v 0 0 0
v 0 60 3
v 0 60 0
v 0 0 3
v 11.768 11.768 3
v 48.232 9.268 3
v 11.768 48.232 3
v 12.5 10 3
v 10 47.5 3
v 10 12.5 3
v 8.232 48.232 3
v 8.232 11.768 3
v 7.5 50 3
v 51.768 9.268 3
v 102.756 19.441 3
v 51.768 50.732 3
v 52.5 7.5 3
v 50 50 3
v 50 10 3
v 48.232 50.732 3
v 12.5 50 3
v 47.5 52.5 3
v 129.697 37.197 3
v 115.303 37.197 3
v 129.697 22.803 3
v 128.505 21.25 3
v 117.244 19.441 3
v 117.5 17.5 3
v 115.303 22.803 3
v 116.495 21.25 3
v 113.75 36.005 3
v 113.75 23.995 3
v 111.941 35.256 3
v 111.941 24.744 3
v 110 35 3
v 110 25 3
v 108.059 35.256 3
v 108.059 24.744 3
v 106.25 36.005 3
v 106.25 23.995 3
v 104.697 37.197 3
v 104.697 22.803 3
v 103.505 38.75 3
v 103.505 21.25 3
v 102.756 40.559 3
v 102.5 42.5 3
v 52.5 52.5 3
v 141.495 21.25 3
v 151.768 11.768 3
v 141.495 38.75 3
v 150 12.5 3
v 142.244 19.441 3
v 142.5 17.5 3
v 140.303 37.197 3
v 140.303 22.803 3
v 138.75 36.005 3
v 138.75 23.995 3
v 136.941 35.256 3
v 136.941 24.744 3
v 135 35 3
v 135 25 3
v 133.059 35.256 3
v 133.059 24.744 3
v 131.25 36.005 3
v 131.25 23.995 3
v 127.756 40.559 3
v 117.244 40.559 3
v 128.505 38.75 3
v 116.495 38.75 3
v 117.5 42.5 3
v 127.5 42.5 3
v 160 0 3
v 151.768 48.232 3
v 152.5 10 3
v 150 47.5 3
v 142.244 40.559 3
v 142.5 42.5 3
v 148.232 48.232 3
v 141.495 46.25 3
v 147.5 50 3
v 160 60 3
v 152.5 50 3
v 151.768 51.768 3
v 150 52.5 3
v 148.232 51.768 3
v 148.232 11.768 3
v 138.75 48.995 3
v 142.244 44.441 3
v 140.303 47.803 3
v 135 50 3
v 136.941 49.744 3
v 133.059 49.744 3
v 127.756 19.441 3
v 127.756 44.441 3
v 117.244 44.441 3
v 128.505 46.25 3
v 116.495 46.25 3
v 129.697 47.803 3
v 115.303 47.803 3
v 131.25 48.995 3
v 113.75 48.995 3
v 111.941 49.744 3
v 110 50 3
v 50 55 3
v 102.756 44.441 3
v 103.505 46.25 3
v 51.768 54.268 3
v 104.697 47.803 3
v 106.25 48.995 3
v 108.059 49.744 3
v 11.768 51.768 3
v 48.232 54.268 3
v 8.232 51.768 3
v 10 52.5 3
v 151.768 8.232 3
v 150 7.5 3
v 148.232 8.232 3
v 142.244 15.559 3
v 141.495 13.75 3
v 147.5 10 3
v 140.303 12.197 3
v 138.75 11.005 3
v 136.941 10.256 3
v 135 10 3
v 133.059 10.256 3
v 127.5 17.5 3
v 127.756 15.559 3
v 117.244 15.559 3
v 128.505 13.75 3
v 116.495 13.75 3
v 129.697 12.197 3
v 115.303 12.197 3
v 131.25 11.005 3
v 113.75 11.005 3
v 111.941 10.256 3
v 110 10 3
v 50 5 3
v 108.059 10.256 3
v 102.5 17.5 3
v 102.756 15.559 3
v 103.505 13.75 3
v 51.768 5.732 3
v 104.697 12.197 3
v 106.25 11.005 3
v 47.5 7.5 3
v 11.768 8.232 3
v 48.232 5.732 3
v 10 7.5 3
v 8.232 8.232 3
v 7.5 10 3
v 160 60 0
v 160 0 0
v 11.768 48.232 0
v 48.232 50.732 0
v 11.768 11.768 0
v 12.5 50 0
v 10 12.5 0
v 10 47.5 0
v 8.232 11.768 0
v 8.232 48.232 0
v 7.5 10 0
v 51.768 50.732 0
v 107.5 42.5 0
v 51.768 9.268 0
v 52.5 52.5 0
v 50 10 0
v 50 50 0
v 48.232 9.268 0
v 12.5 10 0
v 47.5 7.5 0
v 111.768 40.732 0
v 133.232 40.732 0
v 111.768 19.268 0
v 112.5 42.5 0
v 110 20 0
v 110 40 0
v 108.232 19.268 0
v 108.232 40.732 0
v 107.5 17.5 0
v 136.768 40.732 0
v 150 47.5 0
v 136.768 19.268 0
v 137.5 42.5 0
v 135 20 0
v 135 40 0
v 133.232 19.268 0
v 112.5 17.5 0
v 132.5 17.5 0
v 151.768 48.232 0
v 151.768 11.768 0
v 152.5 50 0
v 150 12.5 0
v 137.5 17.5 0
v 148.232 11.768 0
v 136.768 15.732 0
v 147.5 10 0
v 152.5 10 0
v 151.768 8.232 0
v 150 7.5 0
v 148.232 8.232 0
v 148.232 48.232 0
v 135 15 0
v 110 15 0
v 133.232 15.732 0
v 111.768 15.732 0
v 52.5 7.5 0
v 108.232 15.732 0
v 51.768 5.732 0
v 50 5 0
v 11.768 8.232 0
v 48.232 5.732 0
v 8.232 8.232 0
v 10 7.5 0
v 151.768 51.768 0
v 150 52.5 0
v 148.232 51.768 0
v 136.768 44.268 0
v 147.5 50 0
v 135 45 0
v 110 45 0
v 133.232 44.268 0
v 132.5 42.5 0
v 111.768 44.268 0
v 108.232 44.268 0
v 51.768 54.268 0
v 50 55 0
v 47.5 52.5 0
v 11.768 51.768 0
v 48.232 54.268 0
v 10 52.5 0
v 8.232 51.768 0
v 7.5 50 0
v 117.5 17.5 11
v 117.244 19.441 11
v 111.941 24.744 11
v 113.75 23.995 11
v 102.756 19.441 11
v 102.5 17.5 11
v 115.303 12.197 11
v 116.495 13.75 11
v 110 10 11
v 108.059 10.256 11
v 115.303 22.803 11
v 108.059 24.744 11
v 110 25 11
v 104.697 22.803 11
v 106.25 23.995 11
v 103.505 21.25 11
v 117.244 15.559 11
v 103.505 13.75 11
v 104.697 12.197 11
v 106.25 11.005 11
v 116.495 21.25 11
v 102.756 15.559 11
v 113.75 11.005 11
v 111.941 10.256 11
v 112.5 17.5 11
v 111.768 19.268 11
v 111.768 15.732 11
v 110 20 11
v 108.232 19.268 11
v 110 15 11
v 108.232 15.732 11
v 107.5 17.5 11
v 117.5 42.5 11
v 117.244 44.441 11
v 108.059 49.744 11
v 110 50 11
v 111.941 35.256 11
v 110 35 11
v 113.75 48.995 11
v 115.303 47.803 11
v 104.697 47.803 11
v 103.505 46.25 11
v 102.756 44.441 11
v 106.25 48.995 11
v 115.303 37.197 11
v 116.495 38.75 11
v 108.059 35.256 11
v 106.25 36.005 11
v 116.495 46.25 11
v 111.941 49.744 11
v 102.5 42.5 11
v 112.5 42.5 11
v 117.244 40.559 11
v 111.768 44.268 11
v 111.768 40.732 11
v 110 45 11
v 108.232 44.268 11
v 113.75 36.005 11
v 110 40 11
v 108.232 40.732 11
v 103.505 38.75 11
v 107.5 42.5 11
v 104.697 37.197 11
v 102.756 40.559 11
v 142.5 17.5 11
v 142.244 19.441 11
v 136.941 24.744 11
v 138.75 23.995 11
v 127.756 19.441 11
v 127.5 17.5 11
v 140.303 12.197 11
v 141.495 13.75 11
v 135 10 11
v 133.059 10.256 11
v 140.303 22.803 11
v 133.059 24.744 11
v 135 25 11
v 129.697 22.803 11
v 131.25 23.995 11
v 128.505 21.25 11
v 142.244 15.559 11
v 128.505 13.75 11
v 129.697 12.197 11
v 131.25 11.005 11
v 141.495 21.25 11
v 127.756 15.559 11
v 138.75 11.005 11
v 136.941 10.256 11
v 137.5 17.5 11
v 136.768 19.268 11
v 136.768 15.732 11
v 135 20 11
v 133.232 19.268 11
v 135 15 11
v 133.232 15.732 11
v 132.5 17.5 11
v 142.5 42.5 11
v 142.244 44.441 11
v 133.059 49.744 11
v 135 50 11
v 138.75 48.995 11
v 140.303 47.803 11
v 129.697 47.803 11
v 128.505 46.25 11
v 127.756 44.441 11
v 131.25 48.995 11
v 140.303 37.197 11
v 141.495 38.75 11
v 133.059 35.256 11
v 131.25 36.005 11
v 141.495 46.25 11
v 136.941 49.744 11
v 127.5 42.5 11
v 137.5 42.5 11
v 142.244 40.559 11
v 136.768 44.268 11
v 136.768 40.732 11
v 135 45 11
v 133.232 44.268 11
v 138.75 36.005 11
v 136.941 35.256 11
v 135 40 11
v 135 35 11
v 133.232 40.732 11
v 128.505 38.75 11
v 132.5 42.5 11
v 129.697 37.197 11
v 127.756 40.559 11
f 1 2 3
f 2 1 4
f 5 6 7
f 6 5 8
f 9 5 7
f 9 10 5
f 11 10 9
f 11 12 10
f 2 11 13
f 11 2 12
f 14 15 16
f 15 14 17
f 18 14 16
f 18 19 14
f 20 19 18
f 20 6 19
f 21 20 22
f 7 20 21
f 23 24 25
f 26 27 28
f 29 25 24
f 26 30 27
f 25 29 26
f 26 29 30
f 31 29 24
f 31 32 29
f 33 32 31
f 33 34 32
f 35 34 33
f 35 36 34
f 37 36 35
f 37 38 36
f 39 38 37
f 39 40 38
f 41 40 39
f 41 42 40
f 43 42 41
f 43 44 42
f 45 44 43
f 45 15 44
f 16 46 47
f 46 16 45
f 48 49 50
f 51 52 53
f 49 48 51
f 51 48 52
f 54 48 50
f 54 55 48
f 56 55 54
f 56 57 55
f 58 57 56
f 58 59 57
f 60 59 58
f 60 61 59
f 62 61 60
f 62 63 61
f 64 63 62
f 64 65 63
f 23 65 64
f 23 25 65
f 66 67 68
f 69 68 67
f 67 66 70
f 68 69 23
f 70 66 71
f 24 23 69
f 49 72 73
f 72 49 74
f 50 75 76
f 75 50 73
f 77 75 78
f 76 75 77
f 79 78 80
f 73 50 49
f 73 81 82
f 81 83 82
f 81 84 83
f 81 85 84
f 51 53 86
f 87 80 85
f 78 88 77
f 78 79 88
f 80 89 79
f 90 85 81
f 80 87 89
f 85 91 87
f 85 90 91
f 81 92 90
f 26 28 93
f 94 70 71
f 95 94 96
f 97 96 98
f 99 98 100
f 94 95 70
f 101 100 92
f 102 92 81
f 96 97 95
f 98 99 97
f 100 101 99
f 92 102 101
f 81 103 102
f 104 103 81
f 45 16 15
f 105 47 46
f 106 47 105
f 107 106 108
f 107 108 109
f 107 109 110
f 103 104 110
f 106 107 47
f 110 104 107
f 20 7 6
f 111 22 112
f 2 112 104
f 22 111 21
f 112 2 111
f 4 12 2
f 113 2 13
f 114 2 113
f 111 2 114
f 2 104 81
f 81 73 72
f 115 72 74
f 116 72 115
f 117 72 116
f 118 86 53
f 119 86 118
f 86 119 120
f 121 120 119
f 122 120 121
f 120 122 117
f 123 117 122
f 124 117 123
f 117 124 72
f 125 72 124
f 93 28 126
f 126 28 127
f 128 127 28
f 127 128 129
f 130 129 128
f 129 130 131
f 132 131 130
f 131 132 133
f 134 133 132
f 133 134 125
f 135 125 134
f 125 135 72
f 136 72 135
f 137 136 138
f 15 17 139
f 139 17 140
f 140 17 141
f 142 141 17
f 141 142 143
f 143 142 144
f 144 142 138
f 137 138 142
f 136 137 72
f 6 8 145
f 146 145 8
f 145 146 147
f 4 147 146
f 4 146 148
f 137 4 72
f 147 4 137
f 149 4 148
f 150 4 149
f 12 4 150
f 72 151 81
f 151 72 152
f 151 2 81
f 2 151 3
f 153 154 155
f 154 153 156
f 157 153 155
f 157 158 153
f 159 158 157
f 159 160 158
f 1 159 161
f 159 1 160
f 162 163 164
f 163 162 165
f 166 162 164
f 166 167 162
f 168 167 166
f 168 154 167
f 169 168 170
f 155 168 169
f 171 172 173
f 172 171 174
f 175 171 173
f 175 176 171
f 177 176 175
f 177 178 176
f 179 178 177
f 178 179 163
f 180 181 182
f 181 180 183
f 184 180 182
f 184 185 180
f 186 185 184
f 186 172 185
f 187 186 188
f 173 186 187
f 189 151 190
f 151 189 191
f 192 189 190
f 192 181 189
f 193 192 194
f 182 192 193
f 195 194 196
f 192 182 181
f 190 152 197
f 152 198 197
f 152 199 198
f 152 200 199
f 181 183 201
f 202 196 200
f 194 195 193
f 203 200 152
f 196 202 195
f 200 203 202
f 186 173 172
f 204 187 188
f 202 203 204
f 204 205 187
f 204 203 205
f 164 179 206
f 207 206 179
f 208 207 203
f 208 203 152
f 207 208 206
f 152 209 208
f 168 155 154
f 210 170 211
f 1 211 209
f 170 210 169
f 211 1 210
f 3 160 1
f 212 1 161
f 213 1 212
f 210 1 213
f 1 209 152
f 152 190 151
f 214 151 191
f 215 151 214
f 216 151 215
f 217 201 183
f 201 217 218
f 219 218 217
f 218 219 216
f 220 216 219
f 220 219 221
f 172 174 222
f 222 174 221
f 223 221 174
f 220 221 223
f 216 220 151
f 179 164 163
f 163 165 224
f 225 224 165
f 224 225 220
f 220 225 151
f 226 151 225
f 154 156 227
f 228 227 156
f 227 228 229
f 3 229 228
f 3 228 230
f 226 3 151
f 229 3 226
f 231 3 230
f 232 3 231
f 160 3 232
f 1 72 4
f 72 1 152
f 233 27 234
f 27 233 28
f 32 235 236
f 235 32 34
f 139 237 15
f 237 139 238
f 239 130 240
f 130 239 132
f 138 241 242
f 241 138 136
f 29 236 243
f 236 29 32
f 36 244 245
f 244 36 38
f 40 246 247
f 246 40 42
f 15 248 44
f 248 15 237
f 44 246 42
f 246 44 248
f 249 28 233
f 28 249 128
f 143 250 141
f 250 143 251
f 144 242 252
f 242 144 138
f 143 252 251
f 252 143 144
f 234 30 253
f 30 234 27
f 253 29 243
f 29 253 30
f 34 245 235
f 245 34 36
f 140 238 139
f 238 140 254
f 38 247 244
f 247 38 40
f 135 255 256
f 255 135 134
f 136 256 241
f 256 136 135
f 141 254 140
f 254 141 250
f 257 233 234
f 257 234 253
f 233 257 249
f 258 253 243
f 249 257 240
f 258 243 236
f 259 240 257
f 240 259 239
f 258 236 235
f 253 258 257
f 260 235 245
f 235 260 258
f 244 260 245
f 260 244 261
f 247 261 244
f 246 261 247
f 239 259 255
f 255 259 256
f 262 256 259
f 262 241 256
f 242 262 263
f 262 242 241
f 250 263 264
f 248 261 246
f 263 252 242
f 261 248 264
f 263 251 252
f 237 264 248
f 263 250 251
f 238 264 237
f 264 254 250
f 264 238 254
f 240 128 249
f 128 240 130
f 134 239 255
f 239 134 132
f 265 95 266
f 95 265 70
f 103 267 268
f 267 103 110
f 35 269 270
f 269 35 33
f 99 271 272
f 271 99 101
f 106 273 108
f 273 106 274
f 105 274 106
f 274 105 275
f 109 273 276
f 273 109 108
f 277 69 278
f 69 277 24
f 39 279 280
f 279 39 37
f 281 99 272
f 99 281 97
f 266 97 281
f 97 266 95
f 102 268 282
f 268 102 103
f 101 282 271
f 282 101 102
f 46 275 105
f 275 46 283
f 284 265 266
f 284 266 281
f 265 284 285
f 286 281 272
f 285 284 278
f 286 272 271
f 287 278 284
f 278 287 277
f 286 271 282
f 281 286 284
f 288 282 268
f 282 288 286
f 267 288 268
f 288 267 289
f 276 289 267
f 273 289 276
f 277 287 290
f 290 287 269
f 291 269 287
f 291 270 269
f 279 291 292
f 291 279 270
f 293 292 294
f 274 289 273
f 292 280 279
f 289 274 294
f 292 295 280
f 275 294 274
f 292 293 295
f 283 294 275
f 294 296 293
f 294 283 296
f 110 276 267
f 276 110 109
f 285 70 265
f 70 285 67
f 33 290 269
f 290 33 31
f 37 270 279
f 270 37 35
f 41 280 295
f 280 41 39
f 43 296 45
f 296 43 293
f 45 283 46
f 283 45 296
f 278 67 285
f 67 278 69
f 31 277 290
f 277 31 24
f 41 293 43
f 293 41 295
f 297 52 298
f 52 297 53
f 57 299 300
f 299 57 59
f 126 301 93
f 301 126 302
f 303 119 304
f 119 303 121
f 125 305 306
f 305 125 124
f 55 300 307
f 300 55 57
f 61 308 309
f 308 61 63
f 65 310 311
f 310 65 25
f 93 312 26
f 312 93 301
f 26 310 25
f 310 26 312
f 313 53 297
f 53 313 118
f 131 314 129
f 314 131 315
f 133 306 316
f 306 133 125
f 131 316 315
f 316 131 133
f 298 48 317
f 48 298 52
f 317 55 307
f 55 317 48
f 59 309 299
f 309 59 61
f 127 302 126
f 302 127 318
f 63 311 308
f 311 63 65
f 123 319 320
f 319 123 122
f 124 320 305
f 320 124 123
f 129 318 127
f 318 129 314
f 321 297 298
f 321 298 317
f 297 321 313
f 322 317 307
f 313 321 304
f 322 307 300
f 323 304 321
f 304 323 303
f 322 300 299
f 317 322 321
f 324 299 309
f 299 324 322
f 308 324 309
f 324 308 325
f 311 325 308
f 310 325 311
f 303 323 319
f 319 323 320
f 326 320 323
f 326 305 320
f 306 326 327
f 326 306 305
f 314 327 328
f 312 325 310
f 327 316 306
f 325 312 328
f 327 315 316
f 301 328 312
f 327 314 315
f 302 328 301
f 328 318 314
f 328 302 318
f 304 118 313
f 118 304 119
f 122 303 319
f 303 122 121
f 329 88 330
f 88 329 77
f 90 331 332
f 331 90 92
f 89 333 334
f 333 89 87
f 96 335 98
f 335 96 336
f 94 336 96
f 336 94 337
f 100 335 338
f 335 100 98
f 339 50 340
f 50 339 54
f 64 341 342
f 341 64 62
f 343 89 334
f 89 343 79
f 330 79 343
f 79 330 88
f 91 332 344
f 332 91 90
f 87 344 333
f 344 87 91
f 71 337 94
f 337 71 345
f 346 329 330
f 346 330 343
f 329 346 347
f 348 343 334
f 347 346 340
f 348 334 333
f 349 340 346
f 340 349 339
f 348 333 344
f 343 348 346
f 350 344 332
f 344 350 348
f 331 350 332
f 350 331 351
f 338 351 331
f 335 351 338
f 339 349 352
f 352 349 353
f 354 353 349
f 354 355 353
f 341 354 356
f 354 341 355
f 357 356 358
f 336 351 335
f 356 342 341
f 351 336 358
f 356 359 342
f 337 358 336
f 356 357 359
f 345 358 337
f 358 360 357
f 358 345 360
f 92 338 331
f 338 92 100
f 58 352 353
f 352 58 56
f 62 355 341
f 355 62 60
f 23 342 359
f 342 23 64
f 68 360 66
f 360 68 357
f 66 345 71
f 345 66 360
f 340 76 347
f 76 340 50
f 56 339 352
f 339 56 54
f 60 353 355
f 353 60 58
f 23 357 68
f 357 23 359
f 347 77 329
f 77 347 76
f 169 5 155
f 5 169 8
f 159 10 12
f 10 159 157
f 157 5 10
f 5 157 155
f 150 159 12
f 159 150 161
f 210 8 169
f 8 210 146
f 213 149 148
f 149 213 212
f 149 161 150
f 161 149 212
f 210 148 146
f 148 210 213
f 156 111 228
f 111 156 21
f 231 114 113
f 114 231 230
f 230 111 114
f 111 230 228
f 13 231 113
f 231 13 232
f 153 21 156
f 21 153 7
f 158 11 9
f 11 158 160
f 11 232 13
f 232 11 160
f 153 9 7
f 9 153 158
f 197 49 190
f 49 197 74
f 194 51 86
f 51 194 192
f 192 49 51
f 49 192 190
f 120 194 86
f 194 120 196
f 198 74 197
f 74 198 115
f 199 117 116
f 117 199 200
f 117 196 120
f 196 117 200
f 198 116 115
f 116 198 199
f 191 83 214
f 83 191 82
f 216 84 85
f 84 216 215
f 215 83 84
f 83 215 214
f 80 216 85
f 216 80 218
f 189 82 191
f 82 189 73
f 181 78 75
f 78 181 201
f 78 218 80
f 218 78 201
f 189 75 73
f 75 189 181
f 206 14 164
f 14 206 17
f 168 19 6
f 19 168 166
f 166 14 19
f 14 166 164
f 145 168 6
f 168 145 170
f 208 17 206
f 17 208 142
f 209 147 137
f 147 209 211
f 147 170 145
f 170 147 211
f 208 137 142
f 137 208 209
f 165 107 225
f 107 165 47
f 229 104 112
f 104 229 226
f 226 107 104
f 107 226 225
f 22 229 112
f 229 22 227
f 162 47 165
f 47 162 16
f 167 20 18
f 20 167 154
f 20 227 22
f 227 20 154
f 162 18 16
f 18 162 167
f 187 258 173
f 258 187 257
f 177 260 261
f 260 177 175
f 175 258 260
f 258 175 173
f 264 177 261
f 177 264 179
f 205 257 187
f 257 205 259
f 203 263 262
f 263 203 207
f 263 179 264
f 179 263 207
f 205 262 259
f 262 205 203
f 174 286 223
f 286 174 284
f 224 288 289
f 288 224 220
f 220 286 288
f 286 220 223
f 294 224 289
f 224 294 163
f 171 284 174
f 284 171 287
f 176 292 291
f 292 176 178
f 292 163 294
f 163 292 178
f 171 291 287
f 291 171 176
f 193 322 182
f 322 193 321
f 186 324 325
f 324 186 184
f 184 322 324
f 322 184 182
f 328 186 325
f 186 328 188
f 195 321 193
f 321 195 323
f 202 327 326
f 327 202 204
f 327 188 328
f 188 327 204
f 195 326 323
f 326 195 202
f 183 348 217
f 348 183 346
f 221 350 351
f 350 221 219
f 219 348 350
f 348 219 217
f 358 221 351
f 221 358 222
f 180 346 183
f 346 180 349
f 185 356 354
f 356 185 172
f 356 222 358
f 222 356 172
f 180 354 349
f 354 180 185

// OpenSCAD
//                    _
// |\/| _  _  _  _  _|_) __  o _  __| _
// |  |(/_(_|(_|| |_>|  | (_)|(/_(_ |_>
//         _|               _|
//       www.megansprojects.com
// 
// Automatuic water filler base plate

plate_width     = 60;
plate_length    = 160;
plate_thickness = 3;
plate_mount_hole_diameter = 5;
plate_mount_hole_distance = 10;

pressure_dist_from_left = 50;
pressure_hole_diam = 5;
pressure_hole_distance = 45;

valve_dist_from_left = 110;
valve_hole_diam = 5;
valve_hole_distance = 25;
value_post_height = 8;
value_post_diameter = 15;

plate_centre = plate_width / 2;
difference()
{
    union()
    {
        // base plate
        cube ( [ plate_length, plate_width, plate_thickness ] ) ;
        
        // value posts
        translate([valve_dist_from_left ,plate_centre - valve_hole_distance/2, 0])
            cylinder ( plate_thickness + value_post_height , value_post_diameter/2 , value_post_diameter/2 );
        translate([valve_dist_from_left ,plate_centre + valve_hole_distance/2, 0])
            cylinder ( plate_thickness + value_post_height , value_post_diameter/2 , value_post_diameter/2 );
        translate([valve_dist_from_left + valve_hole_distance ,plate_centre - valve_hole_distance/2, 0])
            cylinder ( plate_thickness + value_post_height , value_post_diameter/2 , value_post_diameter/2 );
        translate([valve_dist_from_left + valve_hole_distance ,plate_centre + valve_hole_distance/2, 0])
            cylinder ( plate_thickness + value_post_height , value_post_diameter/2 , value_post_diameter/2 );
    }
    
    union()
    {
        // plate mounting holes
        translate([plate_mount_hole_distance , plate_mount_hole_distance, 0])
            cylinder ( plate_thickness  , plate_mount_hole_diameter/2 , plate_mount_hole_diameter/2 );
        translate([plate_mount_hole_distance , plate_width - plate_mount_hole_distance, 0])
            cylinder ( plate_thickness  , plate_mount_hole_diameter/2 , plate_mount_hole_diameter/2 );
        translate([plate_length - plate_mount_hole_distance , plate_mount_hole_distance, 0])
            cylinder ( plate_thickness , plate_mount_hole_diameter/2 , plate_mount_hole_diameter/2 );
        translate([plate_length - plate_mount_hole_distance , plate_width - plate_mount_hole_distance, 0])
            cylinder ( plate_thickness , plate_mount_hole_diameter/2 , plate_mount_hole_diameter/2 );

        // pressure regulator holes
        translate([pressure_dist_from_left , plate_centre - pressure_hole_distance/2, 0])
            cylinder ( plate_thickness  , pressure_hole_diam/2 , pressure_hole_diam/2 );
        translate([pressure_dist_from_left , plate_centre + pressure_hole_distance/2, 0])
            cylinder ( plate_thickness  , pressure_hole_diam/2 , pressure_hole_diam/2 );

        // value holes
        translate([valve_dist_from_left ,plate_centre - valve_hole_distance/2, 0])
            cylinder ( plate_thickness + value_post_height , valve_hole_diam/2 , valve_hole_diam/2 );
        translate([valve_dist_from_left ,plate_centre + valve_hole_distance/2, 0])
            cylinder ( plate_thickness + value_post_height , valve_hole_diam/2 , valve_hole_diam/2 );
        translate([valve_dist_from_left + valve_hole_distance ,plate_centre - valve_hole_distance/2, 0])
            cylinder ( plate_thickness + value_post_height , valve_hole_diam/2 , valve_hole_diam/2 );
        translate([valve_dist_from_left + valve_hole_distance ,plate_centre + valve_hole_distance/2, 0])
            cylinder ( plate_thickness + value_post_height , valve_hole_diam/2 , valve_hole_diam/2 );
    }
}
